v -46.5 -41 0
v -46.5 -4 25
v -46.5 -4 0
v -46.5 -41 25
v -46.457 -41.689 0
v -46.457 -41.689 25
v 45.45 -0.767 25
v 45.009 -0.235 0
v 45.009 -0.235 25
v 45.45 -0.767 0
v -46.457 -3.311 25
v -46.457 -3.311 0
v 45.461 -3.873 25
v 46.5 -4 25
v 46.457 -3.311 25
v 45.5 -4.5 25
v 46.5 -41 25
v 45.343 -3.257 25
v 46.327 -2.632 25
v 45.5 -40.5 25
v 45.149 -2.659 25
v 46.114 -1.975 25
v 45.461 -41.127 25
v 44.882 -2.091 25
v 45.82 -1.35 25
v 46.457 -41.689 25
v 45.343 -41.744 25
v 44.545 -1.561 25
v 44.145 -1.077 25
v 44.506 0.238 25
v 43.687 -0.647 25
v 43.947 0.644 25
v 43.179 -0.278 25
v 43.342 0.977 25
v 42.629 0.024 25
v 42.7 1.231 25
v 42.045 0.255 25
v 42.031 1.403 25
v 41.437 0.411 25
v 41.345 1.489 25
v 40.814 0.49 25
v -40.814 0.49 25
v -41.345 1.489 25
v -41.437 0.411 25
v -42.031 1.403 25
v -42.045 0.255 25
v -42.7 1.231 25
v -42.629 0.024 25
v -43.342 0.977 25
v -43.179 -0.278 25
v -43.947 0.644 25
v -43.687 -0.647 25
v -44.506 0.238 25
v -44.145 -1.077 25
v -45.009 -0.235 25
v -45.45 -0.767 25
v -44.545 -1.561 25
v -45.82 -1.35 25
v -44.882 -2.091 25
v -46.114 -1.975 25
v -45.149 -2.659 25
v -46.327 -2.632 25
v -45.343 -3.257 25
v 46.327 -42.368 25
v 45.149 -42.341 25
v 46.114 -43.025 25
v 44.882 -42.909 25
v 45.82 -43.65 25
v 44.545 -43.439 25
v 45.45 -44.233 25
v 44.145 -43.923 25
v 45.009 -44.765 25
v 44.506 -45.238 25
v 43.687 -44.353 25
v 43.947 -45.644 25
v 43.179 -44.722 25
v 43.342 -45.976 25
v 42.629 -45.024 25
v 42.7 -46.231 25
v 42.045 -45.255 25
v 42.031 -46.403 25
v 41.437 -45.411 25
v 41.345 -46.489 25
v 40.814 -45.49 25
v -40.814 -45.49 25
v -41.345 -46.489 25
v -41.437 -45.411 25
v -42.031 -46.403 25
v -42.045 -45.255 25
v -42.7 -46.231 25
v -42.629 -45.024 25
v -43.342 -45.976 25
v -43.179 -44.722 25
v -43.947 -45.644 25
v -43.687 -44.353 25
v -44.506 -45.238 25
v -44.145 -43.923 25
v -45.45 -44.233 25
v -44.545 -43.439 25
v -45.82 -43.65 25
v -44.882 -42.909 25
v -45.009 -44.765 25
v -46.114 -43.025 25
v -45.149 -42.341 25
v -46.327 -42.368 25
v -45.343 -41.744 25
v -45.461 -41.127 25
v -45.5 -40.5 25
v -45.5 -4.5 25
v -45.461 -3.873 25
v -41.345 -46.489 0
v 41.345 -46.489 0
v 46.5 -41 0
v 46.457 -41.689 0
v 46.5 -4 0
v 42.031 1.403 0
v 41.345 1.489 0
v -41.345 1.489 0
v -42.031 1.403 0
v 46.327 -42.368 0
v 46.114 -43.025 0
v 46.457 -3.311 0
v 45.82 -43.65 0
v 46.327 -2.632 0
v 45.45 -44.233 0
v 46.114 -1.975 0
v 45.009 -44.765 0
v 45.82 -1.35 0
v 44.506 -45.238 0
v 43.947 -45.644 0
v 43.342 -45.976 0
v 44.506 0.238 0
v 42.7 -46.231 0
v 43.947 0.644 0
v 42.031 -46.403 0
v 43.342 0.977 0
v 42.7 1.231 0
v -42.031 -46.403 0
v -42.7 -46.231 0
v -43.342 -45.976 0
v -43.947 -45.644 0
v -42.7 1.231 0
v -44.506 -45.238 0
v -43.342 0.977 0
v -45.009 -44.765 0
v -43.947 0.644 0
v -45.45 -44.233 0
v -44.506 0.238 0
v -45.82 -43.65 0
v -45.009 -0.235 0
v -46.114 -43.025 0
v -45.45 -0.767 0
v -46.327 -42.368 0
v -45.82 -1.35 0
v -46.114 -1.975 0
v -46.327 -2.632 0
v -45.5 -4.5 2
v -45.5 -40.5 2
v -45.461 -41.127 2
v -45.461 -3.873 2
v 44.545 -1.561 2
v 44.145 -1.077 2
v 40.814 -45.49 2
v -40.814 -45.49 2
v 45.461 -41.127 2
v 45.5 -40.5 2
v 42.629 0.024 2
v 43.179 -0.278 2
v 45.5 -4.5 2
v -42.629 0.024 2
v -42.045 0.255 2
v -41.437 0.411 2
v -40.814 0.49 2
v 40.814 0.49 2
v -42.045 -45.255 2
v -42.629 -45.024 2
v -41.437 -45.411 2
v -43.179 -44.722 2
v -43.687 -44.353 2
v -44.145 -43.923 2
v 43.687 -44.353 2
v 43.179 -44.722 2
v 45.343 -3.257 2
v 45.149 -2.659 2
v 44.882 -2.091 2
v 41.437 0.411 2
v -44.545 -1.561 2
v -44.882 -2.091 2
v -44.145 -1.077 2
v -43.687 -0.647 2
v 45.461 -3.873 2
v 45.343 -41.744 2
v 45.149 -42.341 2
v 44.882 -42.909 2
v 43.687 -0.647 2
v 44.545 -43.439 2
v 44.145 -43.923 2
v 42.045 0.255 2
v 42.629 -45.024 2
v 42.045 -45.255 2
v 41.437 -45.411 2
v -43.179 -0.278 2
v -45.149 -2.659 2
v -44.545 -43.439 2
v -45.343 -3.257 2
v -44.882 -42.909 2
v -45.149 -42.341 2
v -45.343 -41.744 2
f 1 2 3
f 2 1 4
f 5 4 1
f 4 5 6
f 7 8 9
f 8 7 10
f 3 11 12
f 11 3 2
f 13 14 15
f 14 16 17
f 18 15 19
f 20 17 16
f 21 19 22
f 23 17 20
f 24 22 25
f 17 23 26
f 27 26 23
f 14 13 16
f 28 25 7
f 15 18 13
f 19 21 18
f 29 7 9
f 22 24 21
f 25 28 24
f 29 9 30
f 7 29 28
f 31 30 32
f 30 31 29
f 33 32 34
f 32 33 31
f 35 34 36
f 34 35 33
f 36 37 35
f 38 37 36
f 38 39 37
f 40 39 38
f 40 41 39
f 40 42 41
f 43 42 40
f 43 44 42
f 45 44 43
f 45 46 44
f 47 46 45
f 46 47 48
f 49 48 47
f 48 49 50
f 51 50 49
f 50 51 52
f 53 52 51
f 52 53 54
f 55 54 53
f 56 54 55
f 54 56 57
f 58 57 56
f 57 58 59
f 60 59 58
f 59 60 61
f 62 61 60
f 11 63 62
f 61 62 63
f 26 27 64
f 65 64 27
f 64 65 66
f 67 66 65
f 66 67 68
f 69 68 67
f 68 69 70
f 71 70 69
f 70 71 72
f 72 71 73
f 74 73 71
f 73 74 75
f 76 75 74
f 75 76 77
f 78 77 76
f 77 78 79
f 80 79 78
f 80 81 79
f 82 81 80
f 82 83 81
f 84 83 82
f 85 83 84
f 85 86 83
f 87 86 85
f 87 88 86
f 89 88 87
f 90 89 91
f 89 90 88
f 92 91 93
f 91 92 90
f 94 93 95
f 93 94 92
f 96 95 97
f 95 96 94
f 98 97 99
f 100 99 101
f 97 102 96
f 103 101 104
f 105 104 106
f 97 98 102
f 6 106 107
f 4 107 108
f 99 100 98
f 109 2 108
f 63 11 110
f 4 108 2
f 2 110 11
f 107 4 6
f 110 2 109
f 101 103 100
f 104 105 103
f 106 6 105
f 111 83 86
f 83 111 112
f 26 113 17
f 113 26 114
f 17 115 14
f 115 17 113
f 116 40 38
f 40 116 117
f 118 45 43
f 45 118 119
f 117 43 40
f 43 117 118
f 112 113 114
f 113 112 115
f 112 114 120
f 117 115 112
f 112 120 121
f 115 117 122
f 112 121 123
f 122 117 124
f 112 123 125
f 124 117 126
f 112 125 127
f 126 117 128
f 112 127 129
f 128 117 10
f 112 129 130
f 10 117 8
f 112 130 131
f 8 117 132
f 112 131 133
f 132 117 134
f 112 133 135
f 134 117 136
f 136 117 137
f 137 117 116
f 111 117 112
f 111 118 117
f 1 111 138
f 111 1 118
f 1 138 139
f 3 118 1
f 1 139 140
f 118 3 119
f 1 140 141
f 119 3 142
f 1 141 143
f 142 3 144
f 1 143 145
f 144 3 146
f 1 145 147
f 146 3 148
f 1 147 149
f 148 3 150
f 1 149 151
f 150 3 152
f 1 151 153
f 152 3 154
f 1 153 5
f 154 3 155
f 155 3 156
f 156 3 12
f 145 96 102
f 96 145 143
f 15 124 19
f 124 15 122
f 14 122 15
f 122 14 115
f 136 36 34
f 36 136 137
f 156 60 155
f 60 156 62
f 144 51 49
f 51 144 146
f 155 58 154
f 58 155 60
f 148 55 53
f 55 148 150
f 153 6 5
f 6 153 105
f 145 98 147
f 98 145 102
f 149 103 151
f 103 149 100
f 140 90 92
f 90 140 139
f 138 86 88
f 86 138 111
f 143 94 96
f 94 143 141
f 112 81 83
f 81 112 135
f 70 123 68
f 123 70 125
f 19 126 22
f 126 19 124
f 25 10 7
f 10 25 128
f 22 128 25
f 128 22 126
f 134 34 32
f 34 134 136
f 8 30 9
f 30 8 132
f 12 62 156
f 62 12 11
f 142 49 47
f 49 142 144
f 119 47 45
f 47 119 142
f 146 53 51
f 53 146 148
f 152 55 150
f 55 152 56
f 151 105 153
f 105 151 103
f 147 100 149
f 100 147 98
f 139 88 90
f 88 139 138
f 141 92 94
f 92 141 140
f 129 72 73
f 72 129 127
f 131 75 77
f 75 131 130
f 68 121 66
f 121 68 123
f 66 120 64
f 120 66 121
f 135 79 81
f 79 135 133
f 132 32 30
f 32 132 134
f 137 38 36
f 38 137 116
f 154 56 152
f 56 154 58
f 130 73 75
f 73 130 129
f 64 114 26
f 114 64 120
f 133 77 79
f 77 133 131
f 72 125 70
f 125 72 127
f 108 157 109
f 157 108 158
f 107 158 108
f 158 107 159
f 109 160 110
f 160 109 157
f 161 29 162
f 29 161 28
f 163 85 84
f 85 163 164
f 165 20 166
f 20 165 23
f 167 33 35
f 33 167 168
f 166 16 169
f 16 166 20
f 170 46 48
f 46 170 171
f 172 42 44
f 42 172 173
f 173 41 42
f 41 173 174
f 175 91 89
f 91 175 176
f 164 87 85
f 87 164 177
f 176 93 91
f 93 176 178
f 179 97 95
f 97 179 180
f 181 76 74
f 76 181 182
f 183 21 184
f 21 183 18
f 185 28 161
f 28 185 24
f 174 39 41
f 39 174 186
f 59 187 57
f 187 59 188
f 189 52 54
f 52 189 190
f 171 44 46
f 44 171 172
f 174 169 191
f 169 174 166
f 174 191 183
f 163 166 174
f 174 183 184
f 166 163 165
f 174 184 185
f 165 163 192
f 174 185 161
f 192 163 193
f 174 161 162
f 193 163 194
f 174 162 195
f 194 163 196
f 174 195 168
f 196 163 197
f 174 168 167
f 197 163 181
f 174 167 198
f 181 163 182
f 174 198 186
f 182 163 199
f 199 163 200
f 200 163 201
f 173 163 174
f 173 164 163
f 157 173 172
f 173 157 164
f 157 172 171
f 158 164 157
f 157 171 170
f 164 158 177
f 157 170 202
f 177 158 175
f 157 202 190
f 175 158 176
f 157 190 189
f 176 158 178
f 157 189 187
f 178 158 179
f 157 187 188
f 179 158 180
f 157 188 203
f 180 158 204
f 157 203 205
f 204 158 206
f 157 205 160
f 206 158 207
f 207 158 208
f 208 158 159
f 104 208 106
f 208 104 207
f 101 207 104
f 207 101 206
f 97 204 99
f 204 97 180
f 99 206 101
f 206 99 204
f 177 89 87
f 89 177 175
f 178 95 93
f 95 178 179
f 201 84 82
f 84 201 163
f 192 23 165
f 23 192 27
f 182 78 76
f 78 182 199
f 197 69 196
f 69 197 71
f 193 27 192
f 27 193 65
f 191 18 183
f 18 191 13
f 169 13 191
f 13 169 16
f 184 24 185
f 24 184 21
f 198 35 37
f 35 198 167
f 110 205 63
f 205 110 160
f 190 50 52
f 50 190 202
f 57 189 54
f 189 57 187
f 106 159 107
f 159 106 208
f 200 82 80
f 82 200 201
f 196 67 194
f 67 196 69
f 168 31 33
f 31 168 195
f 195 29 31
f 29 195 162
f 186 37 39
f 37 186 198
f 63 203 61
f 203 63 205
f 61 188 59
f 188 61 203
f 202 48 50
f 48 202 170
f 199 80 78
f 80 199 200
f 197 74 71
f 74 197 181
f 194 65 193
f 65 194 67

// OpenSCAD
$fn = 50;


difference() {
	union() {
		translate(v = [0, -22.5000000000, 0]) {
			hull() {
				translate(v = [-41.0000000000, 18.5000000000, 0]) {
					cylinder(h = 25, r = 5.5000000000);
				}
				translate(v = [41.0000000000, 18.5000000000, 0]) {
					cylinder(h = 25, r = 5.5000000000);
				}
				translate(v = [-41.0000000000, -18.5000000000, 0]) {
					cylinder(h = 25, r = 5.5000000000);
				}
				translate(v = [41.0000000000, -18.5000000000, 0]) {
					cylinder(h = 25, r = 5.5000000000);
				}
			}
		}
	}
	union() {
		translate(v = [0, -22.5000000000, 2]) {
			hull() {
				translate(v = [-40.5000000000, 18.0000000000, 0]) {
					cylinder(h = 50, r = 5);
				}
				translate(v = [40.5000000000, 18.0000000000, 0]) {
					cylinder(h = 50, r = 5);
				}
				translate(v = [-40.5000000000, -18.0000000000, 0]) {
					cylinder(h = 50, r = 5);
				}
				translate(v = [40.5000000000, -18.0000000000, 0]) {
					cylinder(h = 50, r = 5);
				}
			}
		}
	}
}
